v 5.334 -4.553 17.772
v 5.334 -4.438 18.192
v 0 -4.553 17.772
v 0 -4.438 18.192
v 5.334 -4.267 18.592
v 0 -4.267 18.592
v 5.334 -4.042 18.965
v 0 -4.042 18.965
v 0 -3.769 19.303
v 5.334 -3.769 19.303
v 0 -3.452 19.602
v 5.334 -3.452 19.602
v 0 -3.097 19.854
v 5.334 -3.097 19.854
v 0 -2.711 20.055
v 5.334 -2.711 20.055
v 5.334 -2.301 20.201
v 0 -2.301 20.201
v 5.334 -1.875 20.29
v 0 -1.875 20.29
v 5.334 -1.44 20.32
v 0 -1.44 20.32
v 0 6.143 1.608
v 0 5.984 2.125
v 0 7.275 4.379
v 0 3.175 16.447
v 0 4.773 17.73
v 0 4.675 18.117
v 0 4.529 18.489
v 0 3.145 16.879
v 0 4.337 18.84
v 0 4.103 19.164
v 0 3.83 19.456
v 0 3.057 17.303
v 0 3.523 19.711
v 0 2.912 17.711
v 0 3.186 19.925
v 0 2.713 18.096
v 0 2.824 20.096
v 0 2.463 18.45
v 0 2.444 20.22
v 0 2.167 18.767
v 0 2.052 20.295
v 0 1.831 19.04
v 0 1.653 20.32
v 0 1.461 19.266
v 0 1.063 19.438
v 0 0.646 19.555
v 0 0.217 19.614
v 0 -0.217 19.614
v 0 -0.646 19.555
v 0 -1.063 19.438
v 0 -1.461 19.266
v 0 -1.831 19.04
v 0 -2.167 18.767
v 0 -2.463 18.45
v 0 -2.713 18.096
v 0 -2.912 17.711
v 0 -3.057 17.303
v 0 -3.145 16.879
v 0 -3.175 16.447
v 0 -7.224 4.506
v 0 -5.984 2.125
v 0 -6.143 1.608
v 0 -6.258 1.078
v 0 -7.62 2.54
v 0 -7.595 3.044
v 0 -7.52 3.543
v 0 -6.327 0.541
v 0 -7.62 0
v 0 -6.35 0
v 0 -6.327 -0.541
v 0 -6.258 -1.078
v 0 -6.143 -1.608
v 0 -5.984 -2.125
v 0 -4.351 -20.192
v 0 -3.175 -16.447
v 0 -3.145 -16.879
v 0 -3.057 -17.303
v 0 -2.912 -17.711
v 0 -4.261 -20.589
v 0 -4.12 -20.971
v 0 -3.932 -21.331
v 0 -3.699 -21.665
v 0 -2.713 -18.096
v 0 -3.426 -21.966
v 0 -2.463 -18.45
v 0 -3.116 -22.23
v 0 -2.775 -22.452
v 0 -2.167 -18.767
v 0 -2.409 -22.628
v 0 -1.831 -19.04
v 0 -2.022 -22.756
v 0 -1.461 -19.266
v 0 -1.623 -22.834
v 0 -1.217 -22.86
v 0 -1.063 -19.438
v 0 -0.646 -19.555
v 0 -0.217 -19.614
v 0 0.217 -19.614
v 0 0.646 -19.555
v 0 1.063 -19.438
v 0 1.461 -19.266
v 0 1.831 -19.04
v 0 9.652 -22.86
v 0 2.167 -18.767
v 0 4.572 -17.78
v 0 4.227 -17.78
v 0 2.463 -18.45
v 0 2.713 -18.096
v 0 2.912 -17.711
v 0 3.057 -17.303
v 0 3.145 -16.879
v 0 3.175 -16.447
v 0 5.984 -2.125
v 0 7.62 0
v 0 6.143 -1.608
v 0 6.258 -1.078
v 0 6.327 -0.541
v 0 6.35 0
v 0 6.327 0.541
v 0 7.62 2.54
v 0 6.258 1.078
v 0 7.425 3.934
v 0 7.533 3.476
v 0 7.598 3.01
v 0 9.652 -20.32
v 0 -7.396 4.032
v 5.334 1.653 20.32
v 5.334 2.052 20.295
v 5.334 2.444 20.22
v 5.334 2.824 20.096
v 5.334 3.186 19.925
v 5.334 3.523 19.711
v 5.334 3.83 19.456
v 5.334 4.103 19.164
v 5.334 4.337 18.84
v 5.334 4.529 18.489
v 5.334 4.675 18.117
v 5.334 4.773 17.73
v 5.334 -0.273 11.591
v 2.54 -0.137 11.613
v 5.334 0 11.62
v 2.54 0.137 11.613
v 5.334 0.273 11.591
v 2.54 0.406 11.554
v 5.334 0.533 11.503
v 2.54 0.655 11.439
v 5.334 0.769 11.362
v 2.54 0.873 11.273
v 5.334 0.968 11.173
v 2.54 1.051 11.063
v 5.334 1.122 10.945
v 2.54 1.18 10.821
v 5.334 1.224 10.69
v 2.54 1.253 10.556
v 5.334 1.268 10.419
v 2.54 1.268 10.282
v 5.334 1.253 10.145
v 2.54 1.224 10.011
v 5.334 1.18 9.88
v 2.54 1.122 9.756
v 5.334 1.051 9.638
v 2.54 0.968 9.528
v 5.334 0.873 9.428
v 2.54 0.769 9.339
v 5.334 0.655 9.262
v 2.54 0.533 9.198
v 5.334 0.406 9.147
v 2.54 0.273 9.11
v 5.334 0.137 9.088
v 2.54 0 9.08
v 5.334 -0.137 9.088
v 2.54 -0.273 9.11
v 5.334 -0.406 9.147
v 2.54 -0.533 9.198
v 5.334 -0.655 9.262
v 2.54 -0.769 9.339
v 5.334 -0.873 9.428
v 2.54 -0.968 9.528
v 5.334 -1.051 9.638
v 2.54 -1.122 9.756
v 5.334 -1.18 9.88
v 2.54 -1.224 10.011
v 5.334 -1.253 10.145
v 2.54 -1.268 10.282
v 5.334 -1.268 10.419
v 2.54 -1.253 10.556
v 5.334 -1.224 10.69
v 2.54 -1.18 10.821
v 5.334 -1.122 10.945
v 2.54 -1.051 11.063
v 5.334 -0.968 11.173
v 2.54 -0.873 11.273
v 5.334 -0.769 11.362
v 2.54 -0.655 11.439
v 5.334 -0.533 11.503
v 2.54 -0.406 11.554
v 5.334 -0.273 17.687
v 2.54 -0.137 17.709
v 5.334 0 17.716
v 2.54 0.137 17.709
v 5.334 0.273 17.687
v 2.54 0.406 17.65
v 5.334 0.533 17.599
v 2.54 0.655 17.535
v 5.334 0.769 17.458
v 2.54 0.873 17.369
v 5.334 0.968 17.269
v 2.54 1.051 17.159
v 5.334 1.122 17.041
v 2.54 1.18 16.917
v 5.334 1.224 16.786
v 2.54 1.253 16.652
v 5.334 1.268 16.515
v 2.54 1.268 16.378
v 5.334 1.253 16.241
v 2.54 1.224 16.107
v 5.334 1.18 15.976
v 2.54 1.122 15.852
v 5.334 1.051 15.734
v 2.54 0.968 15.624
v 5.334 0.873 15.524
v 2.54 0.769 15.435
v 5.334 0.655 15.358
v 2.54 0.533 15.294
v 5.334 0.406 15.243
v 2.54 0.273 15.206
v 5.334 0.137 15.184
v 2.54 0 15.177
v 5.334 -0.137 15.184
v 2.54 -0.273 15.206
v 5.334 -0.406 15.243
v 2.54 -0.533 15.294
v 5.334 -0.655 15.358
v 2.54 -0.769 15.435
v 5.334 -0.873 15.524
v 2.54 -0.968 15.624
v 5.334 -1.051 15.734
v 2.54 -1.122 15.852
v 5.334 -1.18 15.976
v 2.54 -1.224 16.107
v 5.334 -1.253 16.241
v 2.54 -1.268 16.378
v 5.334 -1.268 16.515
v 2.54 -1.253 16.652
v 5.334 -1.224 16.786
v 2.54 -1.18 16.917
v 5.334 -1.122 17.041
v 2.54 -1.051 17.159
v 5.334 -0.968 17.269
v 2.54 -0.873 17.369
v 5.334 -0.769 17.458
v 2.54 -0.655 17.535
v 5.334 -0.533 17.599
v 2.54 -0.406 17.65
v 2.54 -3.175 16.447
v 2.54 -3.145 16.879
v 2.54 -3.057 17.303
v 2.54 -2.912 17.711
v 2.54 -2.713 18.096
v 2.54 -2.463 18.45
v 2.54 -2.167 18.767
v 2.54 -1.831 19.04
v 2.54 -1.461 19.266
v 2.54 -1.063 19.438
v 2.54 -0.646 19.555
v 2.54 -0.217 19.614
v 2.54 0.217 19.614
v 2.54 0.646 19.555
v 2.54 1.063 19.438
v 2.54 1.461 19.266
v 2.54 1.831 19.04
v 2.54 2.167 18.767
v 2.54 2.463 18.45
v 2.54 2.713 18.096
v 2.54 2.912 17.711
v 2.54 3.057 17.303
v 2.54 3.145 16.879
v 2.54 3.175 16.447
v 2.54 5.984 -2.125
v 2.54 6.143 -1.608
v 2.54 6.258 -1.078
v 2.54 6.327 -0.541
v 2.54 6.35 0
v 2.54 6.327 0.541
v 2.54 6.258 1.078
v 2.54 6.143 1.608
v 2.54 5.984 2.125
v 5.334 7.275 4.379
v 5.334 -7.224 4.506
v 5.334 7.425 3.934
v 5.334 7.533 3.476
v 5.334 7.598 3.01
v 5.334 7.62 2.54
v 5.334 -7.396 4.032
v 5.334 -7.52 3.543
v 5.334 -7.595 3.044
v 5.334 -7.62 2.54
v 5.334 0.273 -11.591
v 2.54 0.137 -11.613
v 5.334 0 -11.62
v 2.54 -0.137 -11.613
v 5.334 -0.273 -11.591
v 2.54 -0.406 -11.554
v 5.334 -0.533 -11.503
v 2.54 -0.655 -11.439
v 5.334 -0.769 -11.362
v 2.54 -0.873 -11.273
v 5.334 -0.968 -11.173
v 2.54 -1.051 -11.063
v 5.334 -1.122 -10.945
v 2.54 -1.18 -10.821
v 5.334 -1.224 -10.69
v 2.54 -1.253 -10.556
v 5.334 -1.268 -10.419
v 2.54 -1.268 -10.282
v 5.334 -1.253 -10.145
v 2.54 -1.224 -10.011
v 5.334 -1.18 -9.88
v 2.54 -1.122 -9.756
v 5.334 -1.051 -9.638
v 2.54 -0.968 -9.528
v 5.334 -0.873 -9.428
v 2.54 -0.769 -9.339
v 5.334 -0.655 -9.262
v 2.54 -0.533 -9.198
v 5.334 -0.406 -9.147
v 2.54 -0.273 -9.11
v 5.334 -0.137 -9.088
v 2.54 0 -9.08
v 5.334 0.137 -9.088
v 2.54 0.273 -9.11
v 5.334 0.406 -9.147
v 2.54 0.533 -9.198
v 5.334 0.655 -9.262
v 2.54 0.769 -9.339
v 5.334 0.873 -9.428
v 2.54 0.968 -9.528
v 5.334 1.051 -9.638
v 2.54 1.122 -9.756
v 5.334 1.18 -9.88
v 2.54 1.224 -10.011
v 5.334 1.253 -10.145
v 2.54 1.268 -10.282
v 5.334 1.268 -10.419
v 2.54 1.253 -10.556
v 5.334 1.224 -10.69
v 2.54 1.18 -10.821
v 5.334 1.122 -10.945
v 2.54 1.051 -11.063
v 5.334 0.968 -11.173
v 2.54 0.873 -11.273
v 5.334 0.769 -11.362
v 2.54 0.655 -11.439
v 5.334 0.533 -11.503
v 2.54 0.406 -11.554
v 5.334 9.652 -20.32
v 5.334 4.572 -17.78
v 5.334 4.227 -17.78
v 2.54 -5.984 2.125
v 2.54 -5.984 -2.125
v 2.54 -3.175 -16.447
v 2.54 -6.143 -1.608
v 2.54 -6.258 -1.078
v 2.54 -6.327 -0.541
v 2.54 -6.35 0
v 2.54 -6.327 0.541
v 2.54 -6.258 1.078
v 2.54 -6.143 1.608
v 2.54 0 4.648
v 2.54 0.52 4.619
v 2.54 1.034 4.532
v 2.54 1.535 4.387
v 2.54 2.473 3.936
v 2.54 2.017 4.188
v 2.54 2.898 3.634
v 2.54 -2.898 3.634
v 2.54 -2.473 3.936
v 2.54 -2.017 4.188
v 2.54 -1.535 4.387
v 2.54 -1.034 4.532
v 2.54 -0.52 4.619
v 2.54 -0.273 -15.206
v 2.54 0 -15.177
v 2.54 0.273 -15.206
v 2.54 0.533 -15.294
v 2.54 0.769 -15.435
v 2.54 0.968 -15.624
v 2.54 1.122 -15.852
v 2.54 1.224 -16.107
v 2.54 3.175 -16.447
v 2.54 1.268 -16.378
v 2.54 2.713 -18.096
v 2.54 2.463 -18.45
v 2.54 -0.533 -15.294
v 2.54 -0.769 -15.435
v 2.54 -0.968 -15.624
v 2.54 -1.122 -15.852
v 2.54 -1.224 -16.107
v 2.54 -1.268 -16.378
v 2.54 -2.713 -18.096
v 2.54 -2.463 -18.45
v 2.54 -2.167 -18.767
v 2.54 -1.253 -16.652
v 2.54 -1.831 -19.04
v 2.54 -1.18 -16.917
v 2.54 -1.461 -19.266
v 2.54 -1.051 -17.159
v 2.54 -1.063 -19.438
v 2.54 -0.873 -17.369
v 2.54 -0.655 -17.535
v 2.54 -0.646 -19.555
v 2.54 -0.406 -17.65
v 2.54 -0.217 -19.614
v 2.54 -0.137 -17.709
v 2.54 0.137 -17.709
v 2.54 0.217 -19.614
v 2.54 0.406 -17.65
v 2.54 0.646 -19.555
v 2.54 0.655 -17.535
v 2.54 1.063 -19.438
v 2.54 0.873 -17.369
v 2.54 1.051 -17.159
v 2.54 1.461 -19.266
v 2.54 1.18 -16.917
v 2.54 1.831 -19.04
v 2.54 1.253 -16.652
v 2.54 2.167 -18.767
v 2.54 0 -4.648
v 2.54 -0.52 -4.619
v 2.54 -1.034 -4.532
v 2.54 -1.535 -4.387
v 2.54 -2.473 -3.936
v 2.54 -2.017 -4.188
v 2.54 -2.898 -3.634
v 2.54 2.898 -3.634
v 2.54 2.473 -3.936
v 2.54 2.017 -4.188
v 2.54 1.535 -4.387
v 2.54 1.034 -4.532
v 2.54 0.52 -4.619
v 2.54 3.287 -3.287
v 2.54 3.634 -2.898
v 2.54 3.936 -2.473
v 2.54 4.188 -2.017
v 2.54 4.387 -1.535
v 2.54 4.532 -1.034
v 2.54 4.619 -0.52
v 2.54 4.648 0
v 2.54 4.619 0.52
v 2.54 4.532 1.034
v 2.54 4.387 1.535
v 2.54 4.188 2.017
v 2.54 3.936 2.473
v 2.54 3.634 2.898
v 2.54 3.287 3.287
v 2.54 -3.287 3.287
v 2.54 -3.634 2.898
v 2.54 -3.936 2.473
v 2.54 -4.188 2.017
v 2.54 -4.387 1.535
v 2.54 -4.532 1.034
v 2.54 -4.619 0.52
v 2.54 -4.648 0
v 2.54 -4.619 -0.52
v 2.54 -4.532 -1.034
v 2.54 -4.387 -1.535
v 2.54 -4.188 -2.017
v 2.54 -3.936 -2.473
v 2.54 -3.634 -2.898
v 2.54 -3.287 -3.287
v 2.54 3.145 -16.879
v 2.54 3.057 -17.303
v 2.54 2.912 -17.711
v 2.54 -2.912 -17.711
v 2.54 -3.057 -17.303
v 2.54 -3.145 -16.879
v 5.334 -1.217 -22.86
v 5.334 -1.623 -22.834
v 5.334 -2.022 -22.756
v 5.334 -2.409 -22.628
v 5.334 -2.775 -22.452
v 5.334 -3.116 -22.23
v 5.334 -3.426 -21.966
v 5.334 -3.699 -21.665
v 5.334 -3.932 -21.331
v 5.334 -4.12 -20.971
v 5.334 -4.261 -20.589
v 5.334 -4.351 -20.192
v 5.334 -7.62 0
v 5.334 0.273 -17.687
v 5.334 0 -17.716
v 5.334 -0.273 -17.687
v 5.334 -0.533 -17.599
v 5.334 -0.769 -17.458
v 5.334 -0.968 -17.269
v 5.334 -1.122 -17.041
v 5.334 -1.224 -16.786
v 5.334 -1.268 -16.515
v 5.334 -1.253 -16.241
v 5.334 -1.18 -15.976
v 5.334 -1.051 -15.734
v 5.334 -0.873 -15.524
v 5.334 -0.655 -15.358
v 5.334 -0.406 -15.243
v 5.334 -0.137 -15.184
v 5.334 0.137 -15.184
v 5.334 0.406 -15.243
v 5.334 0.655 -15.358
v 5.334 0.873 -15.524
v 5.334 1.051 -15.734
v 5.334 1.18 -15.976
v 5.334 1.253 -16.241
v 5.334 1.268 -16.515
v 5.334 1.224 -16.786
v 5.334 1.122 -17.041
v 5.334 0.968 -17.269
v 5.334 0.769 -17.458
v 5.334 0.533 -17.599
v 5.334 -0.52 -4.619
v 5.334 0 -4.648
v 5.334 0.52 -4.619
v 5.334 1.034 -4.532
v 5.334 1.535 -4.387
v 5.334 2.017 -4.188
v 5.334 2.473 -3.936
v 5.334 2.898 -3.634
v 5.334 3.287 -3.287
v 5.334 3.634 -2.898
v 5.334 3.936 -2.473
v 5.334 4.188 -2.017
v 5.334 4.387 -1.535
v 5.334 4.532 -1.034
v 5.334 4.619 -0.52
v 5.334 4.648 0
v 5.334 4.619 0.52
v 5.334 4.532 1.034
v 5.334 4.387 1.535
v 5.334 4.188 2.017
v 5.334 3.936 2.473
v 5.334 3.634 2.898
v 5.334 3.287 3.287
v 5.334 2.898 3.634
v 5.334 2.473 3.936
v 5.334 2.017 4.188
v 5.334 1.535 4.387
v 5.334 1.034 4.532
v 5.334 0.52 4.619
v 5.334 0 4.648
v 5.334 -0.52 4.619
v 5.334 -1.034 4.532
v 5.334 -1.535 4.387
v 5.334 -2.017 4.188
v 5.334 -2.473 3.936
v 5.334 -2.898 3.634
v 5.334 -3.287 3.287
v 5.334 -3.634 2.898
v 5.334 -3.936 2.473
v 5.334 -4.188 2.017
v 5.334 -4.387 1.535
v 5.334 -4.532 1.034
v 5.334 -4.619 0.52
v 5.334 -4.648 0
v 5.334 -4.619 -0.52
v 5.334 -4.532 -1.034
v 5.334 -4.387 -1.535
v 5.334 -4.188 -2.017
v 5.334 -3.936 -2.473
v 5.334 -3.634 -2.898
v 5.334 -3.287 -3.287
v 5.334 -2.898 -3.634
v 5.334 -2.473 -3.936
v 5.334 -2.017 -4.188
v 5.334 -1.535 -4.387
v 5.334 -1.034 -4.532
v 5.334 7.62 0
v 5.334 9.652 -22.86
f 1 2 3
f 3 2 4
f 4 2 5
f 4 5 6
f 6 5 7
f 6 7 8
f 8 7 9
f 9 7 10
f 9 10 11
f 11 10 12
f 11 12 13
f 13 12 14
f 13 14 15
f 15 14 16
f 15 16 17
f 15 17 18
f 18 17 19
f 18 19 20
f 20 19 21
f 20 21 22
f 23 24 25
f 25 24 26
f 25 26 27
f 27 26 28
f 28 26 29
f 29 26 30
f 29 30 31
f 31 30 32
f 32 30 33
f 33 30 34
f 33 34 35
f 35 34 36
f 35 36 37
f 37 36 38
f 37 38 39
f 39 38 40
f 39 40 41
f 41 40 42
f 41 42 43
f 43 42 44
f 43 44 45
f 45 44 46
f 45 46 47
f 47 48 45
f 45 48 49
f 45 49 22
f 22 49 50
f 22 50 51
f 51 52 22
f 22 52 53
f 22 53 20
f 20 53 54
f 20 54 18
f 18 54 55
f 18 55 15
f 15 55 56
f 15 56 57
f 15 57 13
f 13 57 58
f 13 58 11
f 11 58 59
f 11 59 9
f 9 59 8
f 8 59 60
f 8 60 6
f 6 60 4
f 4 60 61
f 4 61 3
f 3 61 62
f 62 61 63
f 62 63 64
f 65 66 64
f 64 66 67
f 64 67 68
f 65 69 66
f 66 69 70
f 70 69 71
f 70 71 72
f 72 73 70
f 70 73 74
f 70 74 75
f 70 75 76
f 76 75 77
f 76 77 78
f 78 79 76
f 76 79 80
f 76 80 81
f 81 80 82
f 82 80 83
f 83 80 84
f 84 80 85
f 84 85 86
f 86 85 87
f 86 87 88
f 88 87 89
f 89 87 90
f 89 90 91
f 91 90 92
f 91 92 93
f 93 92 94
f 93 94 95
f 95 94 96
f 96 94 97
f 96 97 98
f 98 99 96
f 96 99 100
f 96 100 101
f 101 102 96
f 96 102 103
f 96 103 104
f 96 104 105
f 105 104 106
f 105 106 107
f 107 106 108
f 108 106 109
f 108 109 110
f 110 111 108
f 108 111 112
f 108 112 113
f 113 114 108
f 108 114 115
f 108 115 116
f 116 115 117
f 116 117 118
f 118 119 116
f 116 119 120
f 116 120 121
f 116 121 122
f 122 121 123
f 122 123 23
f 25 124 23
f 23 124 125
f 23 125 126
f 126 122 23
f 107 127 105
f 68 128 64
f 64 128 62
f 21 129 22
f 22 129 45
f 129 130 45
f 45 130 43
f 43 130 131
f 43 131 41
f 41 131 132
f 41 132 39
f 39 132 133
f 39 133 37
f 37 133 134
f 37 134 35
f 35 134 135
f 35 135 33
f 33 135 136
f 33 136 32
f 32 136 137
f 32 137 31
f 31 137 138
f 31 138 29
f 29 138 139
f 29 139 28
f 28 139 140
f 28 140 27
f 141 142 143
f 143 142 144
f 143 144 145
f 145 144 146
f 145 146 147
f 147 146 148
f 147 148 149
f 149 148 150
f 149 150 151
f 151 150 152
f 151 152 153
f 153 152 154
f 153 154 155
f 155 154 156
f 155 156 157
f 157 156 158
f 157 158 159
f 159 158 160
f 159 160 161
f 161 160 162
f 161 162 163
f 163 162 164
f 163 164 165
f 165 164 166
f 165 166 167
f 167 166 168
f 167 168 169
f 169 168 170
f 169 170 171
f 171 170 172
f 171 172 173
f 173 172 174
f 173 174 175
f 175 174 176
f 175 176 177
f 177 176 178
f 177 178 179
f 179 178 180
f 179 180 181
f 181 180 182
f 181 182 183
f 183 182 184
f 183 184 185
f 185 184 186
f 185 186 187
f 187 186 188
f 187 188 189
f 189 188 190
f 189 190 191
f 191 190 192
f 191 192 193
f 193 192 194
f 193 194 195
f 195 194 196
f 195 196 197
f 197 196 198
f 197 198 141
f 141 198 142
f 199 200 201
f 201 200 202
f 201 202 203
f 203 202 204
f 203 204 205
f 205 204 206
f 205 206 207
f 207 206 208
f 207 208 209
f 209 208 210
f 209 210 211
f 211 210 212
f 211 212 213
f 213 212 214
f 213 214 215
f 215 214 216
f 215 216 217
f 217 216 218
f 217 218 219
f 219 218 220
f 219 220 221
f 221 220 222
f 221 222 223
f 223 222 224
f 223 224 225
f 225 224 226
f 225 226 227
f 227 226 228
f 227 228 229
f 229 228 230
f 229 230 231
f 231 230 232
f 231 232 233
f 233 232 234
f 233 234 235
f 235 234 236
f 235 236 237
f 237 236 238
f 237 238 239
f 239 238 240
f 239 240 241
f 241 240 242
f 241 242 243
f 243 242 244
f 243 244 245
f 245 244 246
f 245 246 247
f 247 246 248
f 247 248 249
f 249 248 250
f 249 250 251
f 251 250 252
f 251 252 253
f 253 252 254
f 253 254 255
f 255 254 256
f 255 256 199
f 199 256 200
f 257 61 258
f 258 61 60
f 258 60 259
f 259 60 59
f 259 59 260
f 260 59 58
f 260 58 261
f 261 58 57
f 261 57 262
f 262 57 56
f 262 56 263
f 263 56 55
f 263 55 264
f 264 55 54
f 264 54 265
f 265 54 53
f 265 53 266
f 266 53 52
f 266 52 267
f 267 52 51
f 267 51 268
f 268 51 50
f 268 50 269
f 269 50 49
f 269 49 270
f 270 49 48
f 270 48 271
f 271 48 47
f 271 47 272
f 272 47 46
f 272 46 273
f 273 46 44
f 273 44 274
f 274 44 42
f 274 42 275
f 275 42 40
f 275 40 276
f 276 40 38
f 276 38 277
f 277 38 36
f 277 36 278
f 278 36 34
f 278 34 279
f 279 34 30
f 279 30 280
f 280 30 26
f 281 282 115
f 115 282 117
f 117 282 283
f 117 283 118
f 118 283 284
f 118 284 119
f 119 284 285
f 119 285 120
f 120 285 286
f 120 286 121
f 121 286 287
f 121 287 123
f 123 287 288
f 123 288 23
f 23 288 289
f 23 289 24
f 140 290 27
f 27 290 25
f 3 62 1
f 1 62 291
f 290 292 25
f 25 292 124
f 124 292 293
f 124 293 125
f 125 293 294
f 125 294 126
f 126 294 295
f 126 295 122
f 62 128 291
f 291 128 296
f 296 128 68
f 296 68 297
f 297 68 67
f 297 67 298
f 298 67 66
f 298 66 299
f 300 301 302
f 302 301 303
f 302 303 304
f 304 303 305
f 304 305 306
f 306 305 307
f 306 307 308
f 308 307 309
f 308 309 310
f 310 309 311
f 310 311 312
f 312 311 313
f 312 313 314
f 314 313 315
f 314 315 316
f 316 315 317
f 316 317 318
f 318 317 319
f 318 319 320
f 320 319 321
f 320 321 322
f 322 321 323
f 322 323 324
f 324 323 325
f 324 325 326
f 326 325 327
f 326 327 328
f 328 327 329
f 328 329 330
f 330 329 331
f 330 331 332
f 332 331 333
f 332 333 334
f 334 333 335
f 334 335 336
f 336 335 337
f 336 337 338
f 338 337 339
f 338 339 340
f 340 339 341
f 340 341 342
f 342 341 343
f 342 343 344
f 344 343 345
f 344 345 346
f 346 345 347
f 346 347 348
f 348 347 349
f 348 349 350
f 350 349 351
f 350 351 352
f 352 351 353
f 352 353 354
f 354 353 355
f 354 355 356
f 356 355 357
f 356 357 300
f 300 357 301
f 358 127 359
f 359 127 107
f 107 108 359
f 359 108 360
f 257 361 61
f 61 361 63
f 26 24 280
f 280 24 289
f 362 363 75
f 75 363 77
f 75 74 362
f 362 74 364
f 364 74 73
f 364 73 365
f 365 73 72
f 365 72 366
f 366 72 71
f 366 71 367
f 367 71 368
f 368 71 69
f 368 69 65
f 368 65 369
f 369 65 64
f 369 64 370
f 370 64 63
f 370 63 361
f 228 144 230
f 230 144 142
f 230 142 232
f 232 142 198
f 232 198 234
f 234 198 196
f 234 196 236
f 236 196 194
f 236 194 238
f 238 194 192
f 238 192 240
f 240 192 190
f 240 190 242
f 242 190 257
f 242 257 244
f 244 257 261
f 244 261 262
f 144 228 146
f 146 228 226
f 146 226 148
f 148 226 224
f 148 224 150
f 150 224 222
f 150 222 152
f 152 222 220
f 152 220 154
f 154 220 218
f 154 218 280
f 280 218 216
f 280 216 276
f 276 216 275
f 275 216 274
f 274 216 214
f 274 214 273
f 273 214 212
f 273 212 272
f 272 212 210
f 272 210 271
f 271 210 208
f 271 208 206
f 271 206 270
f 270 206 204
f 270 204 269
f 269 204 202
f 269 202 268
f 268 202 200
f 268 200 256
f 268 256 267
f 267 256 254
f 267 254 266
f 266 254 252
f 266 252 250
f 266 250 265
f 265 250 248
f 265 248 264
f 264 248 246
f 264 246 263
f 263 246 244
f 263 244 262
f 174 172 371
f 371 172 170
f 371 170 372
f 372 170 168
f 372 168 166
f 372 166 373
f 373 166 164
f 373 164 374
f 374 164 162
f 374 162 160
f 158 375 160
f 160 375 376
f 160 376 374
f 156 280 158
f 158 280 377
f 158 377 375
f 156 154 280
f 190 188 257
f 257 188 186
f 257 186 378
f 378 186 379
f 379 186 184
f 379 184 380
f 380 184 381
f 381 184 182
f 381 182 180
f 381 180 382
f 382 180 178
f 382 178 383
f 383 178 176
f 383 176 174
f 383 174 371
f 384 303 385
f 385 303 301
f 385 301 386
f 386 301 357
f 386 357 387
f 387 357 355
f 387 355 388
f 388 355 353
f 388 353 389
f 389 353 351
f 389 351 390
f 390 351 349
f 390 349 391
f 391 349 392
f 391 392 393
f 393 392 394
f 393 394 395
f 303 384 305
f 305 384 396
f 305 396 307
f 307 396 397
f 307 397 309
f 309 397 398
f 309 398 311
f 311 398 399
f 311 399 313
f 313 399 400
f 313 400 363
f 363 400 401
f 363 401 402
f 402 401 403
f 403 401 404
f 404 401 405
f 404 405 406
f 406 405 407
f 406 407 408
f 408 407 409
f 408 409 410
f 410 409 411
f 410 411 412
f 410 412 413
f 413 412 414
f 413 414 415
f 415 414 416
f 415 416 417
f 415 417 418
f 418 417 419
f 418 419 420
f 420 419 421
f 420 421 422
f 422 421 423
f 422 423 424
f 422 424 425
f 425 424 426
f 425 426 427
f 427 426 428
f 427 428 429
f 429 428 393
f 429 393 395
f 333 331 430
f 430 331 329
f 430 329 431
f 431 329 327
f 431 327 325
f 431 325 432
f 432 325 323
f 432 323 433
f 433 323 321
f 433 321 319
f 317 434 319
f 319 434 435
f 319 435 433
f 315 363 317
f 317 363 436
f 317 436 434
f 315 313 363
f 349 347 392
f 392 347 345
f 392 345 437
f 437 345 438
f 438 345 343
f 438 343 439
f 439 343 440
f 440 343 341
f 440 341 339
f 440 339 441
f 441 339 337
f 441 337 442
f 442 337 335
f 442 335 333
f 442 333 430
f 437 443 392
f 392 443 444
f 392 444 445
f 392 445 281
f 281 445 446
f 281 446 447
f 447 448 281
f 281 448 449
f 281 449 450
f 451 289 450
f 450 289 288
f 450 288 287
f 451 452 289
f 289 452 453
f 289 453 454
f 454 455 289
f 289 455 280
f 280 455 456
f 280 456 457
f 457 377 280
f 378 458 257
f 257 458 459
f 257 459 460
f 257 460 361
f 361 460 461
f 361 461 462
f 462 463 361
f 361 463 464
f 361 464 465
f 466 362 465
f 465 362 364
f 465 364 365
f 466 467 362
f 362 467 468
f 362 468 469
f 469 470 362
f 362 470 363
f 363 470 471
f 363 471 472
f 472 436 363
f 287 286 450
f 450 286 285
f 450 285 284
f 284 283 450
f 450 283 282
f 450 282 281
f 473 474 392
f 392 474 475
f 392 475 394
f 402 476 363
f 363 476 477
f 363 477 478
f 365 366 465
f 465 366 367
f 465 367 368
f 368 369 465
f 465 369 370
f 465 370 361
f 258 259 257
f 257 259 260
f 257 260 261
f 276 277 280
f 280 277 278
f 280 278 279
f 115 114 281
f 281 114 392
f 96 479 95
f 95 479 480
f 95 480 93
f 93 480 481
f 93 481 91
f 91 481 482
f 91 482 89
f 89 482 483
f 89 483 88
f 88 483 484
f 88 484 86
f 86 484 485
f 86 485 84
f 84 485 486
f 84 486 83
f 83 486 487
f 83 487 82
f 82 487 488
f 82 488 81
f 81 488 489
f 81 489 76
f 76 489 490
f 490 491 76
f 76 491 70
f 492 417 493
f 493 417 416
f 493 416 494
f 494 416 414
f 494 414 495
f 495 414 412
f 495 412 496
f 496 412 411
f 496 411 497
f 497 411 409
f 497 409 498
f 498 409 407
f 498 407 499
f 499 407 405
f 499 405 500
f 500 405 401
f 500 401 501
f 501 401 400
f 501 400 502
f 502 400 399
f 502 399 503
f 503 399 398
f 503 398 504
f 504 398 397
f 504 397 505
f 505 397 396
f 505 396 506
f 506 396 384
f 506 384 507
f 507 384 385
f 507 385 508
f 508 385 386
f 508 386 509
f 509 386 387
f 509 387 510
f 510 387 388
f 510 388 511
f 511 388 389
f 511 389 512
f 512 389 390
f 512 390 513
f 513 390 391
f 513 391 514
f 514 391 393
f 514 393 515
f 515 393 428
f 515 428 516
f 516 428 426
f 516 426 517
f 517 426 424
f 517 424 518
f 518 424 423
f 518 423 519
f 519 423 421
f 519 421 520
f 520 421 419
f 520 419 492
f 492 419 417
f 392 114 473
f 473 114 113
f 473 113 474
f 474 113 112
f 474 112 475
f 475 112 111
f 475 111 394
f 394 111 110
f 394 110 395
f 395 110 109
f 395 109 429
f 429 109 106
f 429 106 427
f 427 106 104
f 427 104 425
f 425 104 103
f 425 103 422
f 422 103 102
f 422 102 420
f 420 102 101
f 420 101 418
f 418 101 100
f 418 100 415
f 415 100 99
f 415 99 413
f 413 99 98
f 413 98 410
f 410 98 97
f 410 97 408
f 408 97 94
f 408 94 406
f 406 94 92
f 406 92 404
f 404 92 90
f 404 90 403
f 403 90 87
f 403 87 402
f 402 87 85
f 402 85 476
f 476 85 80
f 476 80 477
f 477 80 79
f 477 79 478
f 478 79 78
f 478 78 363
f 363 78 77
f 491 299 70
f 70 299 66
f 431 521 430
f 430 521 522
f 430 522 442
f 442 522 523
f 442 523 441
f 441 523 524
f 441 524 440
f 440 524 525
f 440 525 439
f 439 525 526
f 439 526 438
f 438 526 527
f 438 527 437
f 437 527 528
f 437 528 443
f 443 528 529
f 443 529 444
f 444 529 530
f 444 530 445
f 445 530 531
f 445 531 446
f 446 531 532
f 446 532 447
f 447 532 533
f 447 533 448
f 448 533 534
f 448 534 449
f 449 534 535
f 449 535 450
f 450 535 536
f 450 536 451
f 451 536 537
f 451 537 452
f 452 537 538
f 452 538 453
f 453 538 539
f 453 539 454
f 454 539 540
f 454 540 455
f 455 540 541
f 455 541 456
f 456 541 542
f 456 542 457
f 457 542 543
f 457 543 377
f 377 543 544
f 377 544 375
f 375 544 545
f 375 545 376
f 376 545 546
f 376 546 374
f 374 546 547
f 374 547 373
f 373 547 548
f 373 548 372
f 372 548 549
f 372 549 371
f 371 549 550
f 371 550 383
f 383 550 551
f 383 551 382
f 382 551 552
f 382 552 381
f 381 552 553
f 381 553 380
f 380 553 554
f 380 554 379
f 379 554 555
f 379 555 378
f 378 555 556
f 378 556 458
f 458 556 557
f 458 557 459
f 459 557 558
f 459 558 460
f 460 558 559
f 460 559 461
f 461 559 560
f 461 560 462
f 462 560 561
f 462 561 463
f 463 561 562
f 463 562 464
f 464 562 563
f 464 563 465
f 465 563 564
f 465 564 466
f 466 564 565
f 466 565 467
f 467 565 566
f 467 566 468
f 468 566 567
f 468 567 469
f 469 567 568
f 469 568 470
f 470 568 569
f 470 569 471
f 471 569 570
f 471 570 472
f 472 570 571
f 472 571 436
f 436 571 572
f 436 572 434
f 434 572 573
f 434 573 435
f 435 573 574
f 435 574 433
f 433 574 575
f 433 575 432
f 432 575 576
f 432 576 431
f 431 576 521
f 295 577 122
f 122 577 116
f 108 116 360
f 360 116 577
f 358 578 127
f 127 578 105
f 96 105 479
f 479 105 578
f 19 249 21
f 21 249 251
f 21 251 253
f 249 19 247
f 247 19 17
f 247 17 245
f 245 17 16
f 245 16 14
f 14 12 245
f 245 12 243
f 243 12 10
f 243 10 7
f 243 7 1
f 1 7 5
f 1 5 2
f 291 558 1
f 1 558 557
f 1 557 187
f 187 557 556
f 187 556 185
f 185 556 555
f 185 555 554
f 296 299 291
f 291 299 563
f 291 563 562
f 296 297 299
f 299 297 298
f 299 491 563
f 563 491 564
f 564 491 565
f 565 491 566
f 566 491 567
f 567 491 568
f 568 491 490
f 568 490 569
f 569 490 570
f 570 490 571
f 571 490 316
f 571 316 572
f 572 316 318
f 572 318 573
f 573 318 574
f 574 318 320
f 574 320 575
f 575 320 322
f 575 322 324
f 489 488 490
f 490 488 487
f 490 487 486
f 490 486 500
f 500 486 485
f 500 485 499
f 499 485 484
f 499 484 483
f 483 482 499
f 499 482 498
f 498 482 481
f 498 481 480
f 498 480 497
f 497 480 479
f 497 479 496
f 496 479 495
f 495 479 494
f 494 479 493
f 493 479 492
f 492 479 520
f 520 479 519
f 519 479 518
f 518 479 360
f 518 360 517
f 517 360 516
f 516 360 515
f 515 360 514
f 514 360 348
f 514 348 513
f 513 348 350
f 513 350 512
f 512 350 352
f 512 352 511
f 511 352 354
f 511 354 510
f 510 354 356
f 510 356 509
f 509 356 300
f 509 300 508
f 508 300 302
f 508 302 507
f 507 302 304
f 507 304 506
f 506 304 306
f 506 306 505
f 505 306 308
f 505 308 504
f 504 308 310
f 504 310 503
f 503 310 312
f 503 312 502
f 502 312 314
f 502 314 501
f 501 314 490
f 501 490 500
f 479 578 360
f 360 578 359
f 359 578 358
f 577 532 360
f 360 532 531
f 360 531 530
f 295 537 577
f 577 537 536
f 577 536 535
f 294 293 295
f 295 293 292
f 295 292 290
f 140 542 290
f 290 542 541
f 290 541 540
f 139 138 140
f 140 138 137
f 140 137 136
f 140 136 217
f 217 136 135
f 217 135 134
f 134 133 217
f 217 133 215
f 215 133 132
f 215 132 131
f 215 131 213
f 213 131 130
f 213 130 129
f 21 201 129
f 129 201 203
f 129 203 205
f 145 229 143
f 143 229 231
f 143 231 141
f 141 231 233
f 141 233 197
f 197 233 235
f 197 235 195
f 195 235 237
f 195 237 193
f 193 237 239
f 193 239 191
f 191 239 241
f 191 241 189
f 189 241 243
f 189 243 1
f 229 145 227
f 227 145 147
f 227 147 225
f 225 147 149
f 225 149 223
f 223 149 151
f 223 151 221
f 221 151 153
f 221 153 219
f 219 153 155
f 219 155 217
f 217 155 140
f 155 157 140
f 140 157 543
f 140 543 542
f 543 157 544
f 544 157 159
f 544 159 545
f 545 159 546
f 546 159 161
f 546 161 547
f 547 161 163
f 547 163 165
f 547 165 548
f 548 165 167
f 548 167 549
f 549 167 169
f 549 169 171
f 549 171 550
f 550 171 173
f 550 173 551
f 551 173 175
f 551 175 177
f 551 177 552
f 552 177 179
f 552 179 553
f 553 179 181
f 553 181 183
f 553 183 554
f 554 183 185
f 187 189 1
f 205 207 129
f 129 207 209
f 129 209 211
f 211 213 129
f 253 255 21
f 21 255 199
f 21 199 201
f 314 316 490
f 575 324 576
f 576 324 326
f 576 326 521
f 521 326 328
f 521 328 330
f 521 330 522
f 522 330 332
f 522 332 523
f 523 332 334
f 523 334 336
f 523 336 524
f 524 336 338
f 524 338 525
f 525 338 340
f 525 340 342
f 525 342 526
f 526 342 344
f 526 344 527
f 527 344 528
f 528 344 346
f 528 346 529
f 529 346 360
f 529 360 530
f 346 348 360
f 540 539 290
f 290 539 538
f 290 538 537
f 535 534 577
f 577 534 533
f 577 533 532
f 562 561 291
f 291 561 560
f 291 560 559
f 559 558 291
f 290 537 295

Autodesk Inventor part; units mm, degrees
ref_plane "YZ Plane" through (0, 0, 0) normal (1, 0, 0) x (0, 1, 0)
ref_plane "XZ Plane" through (0, 0, 0) normal (0, 1, 0) x (-1, 0, 0)
ref_plane "XY Plane" through (0, 0, 0) normal (0, 0, 1) x (1, 0, 0)
sketch "Sketch1" plane through (0, 0, 0) normal (1, 0, 0) x (0, 1, 0)
  circle A0 centre (0, 0) radius 3.0734
  line L0 (7.62, 7.62) -> (-7.62, 7.62)
  line L1 (-7.62, 7.62) -> (-7.62, -22.86)
  line L2 (-7.62, -22.86) -> (7.62, -22.86)
  line L3 (7.62, -22.86) -> (7.62, 7.62)
  line L4 (-7.62, -22.86) -> (9.652, -22.86)
  line L5 (9.652, -22.86) -> (9.652, -17.78)
  line L6 (9.652, -17.78) -> (-7.62, -17.78)
  line L7 (-7.62, -17.78) -> (-7.62, -22.86)
  line L8 (7.62, -17.78) -> (4.2265, -17.78)
  line L9 (4.2265, -17.78) -> (4.2265, -10.16)
  line L10 (4.2265, -10.16) -> (7.62, -10.16)
  line L11 (7.62, -10.16) -> (7.62, -17.78)
  arc A1 (4.2265, -12.1082) -> (4.2265, -17.78) centre (8.1105, -14.9441) ccw
  line L12 (4.2265, -12.1082) -> (5.6507, -10.16)
  line L13 (4.2265, -17.78) -> (7.62, 0)
  point P0 (7.62, -17.78)
  point P1 (7.62, -22.86)
  point P2 (7.62, -10.16)
  point P3 (7.62, -10.16)
  point P4 (4.2265, -12.1082)
  dimension "d0" = 6.1468
  dimension "d1" = 7.62
  dimension "d2" = 7.62
  dimension "d3" = 7.62
  dimension "d4" = 22.86
  dimension "d5" = 5.08
  dimension "d6" = 2.032
  dimension "d38" = 7.62
extrude "Extrusion1" add sketch "Sketch1" along normal blind 5.334 contours L3 L13 L10 L9 A1 L6 L1 L0 | L6 L3 L2 L1 | L13 L9 L12 L10 | A1 L9 | L6 L5 L4 L3 | L12 L9 L10
sketch "Sketch2" plane through (0, 0, 0) normal (-1, 0, 0) x (0, 0, 1)
  circle A0 centre (0, 0) radius 4.6482
  circle A1 centre (0, 0) radius 10.1706
  dimension "d9" = 9.2964
extrude "Extrusion2" cut sketch "Sketch2" against normal blind 5.334 contours A0
fillet "Fillet1" radius 5.08 3 edges at (2.667, -7.62, -22.86) (2.667, 7.62, 7.62) (2.667, -7.62, 7.62)
sketch "Sketch3" plane through (5.334, 0, 0) normal (1, 0, 0) x (0, 0, -1)
  point P0 (0, 0)
sketch "Sketch7" plane through (0, 0, 0) normal (-1, 0, 0) x (0, 0, 1)
  arc A0 (-2.1195, -5.9858) -> (-2.1254, 5.9838) centre (0, 0) ccw
  line L0 (0, 0) -> (-16.4465, 0)
  arc A1 (-16.4465, 3.175) -> (-17.6024, -2.9571) centre (-16.4465, 0) ccw
  line L1 (-0.2923, 6.3433) -> (-16.4465, 3.175)
  circle A2 centre (-16.4465, 0) radius 3.175
  line L2 (-16.4465, -3.175) -> (-0.2923, -6.3433)
  point P0 (-0.2923, -6.3433)
  point P1 (-17.6024, -2.9571)
  dimension "d33" = 12.7
  dimension "d34" = 16.4465
  dimension "d35" = 6.35
  dimension "d54" = 0
extrude "Extrusion6" cut sketch "Sketch7" against normal blind 2.54 contours L2 A2 L1 A0 | A2 A1
sketch "Sketch8" plane through (2.54, 0, 0) normal (-1, 0, 0) x (0, 0, 1)
  arc A0 (-16.4465, 3.175) -> (-16.4465, -3.175) centre (-16.4465, 0) ccw projected
  line L0 (0, 0) -> (-16.4465, 0)
  circle A1 centre (-16.4465, 0) radius 1.27
  point P0 (-17.7165, -3.175)
  dimension "d39" = 2.54
  dimension "d46" = 16.4465
extrude "Extrusion7" cut sketch "Sketch8" against normal blind 5.334
sketch "Sketch9" plane through (0, 0, 0) normal (-1, 0, 0) x (0, 0, 1)
  line L0 (2.54, -7.62) -> (-17.78, -7.62) projected
  line L1 (0, -7.62) -> (-22.6598, -3.952)
  arc A0 (-22.86, -2.54) -> (-17.78, -7.62) centre (-17.78, -2.54) ccw projected
  point P0 (0, 0)
extrude "Extrusion8" cut sketch "Sketch9" against normal blind 5.334
fillet "Fillet2" radius 3.175 1 edges at (2.667, -3.952, -22.6598)
ref_plane "Work Plane1" through (0, -2.54, 0) normal (0, 0, 1) x (1, 0, 0)
mirror "Mirror1" about plane through (0, -2.54, 0) normal (0, 0, 1) of "Extrusion6"
chamfer "Chamfer3" distance 2.54 distance2 5.08 1 edges at (2.667, 9.652, -17.78) measured on face at (1.778, 9.652, -21.1667)
sketch "Sketch10" plane through (2.54, 0, 0) normal (-1, 0, 0) x (0, 0, 1)
  circle A0 centre (-10.3505, 0) radius 1.27
  circle A1 centre (-16.4465, 0) radius 1.27 projected
  point P0 (0, 0)
  dimension "d50" = 2.54
  dimension "d51" = 6.096
extrude "Extrusion9" cut sketch "Sketch10" against normal blind 5.334 contours A0
sketch "Sketch11" plane through (0, 0, 0) normal (-1, 0, 0) x (0, 0, 1)
  arc A0 (6.9654, 5.0345) -> (2.54, 7.62) centre (2.54, 2.54) ccw projected
  line L0 (2.54, 7.62) -> (20.32, 4.2879)
  line L1 (20.32, 4.2879) -> (20.32, -4.0399)
  line L2 (20.32, -4.0399) -> (2.54, -7.62)
  arc A1 (2.54, -7.62) -> (6.9654, -5.0345) centre (2.54, -2.54) ccw projected
  line L3 (0, 13.2262) -> (0, -11.7932) projected
  line L4 (0, 7.62) -> (2.54, 7.62) projected
  line L5 (2.54, -7.3934) -> (2.54, -7.62)
  line L6 (2.54, 5.3798) -> (5.1026, 5.3798)
  line L7 (5.1026, 5.3798) -> (5.1026, -5.0345)
  line L8 (5.1026, -5.0345) -> (2.54, -5.0345)
  line L9 (2.54, 7.62) -> (2.54, 5.3798)
  line L10 (2.54, -5.0345) -> (2.54, -7.3934)
  point P0 (0, 0)
  point P1 (2.54, -7.62)
  point P2 (4.5061, -7.2241)
  dimension "d56" = 0
  dimension "d57" = 20.32
extrude "Extrusion10" add sketch "Sketch11" against normal blind 5.334 contours L0 L1 L2 L5 L10 L8 L7 L6 L9
mirror "Mirror2" about plane through (0, -2.54, 0) normal (0, 0, 1) of "Extrusion6", "Extrusion7", "Extrusion9"
fillet "Fillet3" radius 3.175 2 edges at (2.667, 4.2879, 20.32) (2.667, -4.0399, 20.32)
properties part number "ServoHornAdapter"
